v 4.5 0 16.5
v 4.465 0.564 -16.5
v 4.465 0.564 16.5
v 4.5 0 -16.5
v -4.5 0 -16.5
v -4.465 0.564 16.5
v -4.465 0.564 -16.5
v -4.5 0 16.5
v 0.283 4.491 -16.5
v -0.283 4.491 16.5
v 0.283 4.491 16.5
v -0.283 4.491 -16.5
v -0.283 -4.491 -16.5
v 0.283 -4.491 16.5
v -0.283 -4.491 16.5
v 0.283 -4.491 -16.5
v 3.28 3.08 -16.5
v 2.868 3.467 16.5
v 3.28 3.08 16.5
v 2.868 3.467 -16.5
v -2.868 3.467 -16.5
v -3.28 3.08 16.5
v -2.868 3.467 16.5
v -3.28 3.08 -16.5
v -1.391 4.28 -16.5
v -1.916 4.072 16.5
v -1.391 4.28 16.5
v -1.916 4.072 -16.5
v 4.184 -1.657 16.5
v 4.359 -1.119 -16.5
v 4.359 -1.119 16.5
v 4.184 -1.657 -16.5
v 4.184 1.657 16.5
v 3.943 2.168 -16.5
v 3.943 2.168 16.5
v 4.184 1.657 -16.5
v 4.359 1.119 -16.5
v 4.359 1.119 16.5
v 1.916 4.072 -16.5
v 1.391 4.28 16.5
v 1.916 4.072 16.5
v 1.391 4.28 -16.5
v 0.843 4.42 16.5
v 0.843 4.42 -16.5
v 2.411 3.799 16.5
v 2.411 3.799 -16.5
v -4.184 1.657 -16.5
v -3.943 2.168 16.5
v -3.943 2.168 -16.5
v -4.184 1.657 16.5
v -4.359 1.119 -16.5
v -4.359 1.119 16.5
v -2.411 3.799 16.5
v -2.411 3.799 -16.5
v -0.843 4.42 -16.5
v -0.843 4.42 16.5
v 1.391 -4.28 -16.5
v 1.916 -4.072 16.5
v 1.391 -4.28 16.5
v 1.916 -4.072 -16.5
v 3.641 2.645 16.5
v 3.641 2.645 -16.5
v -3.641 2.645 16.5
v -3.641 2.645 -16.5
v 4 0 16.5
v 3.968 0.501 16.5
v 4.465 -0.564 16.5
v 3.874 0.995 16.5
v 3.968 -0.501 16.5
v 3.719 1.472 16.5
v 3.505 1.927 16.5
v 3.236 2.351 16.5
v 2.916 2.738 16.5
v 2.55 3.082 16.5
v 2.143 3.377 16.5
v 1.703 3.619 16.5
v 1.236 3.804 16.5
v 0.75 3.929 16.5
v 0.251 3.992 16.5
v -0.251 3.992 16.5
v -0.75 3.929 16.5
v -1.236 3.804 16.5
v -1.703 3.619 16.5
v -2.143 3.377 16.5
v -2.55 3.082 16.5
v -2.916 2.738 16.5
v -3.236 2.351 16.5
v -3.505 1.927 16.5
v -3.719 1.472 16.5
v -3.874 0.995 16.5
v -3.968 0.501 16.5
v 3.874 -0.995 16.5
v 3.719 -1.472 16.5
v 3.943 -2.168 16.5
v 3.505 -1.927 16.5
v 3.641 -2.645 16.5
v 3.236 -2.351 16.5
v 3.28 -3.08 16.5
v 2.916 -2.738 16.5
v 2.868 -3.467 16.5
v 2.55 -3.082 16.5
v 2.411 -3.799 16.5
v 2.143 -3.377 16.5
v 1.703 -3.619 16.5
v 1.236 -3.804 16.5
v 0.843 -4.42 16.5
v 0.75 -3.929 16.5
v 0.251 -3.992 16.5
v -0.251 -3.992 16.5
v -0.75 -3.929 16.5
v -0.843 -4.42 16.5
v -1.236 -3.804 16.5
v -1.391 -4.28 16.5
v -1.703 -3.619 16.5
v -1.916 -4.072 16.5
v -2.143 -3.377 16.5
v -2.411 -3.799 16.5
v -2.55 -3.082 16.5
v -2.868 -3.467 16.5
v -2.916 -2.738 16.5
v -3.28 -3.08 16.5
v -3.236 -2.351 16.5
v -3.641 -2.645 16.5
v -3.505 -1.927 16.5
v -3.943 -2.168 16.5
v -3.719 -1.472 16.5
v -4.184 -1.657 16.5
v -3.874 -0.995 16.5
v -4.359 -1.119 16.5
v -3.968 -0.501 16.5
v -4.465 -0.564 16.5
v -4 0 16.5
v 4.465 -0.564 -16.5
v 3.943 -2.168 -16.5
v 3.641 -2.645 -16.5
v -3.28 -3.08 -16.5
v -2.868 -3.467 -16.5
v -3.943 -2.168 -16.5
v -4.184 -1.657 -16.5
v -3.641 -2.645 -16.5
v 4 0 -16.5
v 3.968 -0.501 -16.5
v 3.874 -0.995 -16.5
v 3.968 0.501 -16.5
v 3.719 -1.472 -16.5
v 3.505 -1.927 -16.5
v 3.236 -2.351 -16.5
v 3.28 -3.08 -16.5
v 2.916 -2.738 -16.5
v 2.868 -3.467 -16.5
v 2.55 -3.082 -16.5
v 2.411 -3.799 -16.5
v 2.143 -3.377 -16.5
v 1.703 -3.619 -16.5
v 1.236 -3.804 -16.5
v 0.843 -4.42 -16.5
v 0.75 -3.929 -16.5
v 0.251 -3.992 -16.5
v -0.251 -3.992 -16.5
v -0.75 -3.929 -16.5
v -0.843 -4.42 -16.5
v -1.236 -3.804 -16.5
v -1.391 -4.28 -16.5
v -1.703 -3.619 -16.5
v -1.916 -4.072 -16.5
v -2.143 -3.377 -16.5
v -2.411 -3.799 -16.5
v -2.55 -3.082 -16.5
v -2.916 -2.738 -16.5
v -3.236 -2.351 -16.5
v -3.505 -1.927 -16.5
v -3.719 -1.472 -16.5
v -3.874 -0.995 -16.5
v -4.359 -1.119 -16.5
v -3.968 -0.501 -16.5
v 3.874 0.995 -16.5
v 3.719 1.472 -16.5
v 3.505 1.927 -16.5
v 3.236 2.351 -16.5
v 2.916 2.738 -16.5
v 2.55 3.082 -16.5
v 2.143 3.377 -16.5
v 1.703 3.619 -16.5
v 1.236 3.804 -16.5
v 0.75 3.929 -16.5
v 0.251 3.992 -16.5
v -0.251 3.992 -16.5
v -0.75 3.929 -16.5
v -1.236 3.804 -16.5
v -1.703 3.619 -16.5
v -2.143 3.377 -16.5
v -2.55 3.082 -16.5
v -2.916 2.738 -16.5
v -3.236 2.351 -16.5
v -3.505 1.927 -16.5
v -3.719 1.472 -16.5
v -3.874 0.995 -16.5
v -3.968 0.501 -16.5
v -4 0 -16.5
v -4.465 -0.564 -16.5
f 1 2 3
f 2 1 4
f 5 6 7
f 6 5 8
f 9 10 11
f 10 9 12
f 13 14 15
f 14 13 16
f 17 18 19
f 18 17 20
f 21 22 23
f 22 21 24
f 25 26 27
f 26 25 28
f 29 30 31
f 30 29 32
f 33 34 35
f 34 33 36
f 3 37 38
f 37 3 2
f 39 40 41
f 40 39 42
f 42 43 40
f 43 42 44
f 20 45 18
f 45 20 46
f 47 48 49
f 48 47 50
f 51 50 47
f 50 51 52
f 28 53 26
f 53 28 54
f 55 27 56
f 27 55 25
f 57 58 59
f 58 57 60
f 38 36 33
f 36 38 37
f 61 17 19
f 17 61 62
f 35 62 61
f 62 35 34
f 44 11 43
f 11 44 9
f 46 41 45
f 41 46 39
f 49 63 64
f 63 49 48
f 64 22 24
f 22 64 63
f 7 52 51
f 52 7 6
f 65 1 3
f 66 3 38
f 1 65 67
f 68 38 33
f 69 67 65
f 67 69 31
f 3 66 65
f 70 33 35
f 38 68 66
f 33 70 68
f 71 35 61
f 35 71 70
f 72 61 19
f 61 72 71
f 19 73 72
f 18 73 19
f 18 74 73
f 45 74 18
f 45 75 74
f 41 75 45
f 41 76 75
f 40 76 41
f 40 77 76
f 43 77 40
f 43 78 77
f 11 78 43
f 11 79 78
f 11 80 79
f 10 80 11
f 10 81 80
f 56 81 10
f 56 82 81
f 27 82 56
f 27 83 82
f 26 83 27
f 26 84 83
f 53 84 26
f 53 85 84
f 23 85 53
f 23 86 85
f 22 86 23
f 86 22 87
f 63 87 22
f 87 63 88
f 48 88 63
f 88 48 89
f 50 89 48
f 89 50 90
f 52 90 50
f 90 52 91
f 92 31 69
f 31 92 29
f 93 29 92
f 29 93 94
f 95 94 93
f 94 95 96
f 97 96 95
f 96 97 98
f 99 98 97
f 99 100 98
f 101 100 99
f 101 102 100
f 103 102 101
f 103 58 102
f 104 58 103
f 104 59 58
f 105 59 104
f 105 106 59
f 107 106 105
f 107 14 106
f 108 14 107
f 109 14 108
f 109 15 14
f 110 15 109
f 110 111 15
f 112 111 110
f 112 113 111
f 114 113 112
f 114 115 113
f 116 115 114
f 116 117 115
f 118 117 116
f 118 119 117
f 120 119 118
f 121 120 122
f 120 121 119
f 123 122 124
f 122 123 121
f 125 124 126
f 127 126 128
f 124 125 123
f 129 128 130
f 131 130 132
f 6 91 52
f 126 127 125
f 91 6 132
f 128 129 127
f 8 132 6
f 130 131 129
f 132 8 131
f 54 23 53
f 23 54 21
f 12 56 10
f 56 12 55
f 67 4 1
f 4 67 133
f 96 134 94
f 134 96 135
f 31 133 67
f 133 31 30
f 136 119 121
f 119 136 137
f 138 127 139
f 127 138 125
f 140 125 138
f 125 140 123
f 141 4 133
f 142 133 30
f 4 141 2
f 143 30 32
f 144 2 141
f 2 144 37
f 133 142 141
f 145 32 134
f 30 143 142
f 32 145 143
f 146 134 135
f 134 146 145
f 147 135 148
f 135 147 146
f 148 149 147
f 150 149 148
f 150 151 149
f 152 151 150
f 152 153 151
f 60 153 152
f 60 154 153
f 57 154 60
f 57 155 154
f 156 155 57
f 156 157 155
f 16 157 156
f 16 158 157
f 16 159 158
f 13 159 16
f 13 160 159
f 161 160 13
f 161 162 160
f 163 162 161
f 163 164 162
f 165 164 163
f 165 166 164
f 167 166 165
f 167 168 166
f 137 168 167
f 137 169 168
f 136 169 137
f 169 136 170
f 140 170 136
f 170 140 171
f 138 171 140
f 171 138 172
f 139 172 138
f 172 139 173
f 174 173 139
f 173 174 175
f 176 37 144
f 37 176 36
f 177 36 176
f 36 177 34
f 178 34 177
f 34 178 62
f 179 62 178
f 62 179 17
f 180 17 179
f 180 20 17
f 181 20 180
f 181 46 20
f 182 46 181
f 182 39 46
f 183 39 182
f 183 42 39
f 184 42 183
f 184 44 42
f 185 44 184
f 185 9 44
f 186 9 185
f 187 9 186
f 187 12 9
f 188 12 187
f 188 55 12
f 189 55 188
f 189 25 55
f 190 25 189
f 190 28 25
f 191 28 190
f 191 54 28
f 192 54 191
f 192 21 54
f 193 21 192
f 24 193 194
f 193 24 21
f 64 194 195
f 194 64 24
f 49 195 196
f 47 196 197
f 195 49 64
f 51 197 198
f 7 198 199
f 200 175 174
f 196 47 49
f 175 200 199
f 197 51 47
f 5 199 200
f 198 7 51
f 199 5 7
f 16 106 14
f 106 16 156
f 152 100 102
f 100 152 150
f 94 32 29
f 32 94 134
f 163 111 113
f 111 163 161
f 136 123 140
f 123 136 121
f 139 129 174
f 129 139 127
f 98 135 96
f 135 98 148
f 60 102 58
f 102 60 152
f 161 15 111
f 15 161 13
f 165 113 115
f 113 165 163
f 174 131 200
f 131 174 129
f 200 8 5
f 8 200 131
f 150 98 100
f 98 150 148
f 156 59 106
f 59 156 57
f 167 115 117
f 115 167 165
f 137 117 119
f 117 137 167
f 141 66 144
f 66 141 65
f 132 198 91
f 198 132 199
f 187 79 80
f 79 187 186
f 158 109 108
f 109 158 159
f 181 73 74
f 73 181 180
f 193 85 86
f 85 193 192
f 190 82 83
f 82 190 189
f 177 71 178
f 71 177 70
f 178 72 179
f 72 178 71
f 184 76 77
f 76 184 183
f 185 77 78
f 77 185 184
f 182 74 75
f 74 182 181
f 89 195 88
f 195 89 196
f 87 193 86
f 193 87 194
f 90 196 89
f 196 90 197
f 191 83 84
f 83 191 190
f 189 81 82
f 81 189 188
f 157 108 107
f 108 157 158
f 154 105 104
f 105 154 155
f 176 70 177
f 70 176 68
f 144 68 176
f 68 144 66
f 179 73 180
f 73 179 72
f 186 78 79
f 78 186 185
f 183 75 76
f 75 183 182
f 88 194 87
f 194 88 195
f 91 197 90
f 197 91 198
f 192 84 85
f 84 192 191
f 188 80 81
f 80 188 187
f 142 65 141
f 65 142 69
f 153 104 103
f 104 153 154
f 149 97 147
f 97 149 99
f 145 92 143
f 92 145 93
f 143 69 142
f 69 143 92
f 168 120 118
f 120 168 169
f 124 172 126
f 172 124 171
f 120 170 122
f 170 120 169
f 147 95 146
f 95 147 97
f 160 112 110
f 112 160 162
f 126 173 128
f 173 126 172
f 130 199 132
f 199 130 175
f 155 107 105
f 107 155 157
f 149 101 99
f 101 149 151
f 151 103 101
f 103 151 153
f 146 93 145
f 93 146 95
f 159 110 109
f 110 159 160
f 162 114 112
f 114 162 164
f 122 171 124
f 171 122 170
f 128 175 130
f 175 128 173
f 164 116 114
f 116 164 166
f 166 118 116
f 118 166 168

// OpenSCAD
$fn = 50;


difference() {
	union() {
		translate(v = [0, 0, -16.5000000000]) {
			cylinder(h = 33, r = 4.5000000000);
		}
	}
	union() {
		translate(v = [0, 0, -100.0000000000]) {
			cylinder(h = 200, r = 4);
		}
	}
}
